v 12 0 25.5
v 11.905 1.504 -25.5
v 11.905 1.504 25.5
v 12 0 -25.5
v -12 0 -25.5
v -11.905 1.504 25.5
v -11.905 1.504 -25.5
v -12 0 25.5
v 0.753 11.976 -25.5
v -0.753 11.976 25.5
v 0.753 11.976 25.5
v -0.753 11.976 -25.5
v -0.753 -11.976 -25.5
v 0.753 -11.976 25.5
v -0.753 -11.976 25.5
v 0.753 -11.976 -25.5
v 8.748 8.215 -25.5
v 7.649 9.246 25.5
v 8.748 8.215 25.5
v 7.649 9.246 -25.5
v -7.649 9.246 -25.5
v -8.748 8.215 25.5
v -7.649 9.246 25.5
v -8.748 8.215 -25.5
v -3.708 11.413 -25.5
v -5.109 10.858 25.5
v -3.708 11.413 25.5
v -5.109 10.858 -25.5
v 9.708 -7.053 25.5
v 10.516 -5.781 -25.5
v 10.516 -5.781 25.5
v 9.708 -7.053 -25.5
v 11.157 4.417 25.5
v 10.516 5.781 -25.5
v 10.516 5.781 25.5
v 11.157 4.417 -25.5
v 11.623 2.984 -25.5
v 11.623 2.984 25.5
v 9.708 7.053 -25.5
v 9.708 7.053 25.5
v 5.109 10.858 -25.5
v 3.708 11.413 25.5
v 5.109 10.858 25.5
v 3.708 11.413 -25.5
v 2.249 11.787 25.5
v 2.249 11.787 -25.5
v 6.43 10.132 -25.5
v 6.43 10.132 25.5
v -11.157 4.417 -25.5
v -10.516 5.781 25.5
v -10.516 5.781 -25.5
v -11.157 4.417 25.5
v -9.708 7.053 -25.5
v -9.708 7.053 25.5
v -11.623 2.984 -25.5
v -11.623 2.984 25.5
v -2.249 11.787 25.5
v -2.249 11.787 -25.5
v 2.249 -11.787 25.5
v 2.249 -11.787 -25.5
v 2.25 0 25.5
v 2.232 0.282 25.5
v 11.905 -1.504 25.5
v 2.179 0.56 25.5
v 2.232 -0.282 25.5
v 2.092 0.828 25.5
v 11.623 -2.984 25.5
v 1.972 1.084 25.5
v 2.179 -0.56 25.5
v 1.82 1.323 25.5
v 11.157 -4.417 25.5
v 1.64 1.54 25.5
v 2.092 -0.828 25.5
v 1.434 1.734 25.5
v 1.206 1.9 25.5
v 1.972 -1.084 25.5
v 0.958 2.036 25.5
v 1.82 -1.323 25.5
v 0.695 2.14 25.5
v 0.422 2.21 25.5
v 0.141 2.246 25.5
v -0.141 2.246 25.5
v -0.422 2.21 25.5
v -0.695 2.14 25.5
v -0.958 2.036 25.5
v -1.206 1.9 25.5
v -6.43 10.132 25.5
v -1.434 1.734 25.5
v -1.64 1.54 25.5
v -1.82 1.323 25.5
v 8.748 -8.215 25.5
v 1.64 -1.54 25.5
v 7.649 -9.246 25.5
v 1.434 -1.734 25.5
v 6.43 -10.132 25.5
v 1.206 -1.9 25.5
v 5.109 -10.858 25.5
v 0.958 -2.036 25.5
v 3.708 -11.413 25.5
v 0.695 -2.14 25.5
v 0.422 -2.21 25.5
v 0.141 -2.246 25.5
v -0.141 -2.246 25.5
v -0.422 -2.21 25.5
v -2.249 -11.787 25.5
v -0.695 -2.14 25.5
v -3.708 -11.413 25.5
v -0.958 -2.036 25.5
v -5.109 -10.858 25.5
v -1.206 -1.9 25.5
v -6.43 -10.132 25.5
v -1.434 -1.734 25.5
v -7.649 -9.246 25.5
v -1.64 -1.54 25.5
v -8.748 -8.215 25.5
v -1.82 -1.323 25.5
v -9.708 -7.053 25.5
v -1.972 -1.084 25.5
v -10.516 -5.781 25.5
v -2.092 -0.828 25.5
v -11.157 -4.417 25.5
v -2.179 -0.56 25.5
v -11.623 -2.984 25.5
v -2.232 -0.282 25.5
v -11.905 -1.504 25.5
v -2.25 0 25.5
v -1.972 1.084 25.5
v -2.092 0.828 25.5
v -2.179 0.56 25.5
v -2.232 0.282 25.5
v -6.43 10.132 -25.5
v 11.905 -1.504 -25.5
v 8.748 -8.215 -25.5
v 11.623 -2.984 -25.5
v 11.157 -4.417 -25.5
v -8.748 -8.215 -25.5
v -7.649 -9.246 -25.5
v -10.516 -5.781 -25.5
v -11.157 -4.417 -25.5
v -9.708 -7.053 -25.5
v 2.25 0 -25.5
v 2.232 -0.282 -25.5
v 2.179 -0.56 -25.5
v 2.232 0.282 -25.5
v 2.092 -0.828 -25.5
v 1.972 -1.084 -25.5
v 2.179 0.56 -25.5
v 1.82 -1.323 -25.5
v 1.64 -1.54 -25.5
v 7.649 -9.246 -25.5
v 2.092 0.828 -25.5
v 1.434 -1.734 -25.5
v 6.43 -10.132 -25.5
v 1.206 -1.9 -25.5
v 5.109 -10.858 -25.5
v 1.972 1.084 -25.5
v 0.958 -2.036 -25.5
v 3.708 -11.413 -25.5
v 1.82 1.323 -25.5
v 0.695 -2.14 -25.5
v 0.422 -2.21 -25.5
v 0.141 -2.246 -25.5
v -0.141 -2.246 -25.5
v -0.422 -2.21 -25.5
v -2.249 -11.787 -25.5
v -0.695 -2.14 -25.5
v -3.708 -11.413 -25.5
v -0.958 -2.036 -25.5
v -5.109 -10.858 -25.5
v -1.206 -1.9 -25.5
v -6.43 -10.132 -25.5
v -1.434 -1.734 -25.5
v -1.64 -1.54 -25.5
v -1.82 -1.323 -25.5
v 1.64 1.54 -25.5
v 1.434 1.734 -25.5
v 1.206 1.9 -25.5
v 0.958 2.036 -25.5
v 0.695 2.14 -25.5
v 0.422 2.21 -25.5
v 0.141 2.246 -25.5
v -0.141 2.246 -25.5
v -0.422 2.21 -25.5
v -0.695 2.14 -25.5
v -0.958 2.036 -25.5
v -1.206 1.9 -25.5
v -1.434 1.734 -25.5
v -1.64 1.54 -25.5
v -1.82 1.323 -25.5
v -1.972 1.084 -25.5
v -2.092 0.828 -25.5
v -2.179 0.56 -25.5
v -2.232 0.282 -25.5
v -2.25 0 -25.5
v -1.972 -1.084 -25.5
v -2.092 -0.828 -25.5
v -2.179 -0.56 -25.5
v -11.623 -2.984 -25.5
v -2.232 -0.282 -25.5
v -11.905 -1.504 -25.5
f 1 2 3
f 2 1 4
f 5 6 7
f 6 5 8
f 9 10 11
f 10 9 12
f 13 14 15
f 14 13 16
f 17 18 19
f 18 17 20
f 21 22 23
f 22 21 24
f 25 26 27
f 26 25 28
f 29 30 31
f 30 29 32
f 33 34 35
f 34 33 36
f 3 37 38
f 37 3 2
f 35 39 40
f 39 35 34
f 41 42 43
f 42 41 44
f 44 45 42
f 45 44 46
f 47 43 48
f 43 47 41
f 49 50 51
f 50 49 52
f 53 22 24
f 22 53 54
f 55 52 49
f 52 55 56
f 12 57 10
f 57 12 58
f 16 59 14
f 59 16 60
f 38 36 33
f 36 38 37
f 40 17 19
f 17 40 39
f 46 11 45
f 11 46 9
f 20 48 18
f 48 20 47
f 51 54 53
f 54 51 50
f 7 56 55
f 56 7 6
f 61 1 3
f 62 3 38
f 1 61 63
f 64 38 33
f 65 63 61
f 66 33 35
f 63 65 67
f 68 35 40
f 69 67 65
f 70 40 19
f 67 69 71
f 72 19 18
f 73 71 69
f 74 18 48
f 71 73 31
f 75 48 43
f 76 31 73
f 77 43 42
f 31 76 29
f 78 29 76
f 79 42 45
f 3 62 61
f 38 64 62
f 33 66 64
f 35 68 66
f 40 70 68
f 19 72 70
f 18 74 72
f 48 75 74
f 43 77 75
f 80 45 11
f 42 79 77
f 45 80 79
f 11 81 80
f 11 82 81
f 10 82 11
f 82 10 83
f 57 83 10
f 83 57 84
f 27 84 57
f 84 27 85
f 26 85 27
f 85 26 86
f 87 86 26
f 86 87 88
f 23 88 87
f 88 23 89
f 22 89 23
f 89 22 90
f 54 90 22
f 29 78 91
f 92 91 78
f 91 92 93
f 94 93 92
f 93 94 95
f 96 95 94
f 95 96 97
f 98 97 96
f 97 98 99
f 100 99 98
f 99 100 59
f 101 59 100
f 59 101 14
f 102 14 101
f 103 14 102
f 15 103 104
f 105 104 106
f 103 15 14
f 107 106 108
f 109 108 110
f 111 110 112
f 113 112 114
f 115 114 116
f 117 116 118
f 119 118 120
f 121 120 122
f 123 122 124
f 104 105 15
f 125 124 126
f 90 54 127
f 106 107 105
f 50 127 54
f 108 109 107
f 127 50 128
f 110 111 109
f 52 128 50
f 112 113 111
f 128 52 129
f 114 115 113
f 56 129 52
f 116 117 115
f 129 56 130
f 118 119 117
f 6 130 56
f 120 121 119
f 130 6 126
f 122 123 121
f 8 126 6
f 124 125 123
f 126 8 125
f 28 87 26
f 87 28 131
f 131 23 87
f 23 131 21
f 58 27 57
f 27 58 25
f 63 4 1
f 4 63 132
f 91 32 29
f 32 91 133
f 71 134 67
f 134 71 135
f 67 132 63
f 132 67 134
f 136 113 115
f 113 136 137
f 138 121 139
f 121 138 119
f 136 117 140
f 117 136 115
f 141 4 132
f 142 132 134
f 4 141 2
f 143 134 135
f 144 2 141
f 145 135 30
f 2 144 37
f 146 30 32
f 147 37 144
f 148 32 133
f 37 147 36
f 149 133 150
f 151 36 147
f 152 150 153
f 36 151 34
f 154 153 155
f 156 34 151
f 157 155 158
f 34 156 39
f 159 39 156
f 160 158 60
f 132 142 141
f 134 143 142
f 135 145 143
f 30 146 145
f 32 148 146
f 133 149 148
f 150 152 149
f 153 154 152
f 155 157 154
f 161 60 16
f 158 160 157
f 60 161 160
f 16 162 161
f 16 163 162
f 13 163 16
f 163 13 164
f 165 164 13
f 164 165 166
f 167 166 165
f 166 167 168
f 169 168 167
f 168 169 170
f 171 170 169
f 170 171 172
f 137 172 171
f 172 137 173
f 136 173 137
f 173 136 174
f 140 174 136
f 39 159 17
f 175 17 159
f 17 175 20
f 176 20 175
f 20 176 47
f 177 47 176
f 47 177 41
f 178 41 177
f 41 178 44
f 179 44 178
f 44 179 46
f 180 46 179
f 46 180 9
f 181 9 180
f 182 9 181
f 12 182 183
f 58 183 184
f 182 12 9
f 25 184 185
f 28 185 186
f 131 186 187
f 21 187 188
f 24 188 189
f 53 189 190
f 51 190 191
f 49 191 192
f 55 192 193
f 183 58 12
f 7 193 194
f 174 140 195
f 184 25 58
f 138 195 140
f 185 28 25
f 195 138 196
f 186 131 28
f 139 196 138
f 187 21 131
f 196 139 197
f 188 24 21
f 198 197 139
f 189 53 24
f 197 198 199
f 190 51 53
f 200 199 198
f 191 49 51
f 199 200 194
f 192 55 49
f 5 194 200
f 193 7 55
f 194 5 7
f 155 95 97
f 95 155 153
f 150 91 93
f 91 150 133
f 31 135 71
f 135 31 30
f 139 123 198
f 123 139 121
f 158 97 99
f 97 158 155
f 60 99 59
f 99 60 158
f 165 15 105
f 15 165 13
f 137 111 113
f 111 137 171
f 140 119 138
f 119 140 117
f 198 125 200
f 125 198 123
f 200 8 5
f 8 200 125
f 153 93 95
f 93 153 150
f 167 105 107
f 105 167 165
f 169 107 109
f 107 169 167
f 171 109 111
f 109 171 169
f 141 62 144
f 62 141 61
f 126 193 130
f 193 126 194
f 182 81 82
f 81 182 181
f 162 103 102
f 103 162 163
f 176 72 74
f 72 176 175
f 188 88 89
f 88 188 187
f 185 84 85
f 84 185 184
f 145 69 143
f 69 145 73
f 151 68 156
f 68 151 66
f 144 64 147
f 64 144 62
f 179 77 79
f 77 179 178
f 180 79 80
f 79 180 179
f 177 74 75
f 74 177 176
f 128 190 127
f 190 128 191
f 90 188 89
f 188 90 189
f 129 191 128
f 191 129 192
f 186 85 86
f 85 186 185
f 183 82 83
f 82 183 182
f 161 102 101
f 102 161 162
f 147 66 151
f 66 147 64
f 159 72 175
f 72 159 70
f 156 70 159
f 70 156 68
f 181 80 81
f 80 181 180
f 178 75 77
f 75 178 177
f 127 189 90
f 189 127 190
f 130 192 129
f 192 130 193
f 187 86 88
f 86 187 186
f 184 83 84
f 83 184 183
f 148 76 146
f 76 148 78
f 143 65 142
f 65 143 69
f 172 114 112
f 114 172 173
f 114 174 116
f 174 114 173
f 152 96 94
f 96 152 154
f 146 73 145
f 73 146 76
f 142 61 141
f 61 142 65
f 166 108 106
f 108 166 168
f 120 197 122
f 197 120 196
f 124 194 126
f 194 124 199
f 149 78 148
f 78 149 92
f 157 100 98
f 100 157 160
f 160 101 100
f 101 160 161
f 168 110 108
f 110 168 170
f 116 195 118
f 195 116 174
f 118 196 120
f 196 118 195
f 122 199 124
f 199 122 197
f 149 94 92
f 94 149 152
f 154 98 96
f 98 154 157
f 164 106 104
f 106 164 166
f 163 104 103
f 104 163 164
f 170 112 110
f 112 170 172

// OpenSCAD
$fn = 50;


difference() {
	union() {
		translate(v = [0, 0, -25.5000000000]) {
			cylinder(h = 51, r = 12.0000000000);
		}
	}
	union() {
		translate(v = [0, 0, -100.0000000000]) {
			cylinder(h = 200, r = 2.2500000000);
		}
	}
}
